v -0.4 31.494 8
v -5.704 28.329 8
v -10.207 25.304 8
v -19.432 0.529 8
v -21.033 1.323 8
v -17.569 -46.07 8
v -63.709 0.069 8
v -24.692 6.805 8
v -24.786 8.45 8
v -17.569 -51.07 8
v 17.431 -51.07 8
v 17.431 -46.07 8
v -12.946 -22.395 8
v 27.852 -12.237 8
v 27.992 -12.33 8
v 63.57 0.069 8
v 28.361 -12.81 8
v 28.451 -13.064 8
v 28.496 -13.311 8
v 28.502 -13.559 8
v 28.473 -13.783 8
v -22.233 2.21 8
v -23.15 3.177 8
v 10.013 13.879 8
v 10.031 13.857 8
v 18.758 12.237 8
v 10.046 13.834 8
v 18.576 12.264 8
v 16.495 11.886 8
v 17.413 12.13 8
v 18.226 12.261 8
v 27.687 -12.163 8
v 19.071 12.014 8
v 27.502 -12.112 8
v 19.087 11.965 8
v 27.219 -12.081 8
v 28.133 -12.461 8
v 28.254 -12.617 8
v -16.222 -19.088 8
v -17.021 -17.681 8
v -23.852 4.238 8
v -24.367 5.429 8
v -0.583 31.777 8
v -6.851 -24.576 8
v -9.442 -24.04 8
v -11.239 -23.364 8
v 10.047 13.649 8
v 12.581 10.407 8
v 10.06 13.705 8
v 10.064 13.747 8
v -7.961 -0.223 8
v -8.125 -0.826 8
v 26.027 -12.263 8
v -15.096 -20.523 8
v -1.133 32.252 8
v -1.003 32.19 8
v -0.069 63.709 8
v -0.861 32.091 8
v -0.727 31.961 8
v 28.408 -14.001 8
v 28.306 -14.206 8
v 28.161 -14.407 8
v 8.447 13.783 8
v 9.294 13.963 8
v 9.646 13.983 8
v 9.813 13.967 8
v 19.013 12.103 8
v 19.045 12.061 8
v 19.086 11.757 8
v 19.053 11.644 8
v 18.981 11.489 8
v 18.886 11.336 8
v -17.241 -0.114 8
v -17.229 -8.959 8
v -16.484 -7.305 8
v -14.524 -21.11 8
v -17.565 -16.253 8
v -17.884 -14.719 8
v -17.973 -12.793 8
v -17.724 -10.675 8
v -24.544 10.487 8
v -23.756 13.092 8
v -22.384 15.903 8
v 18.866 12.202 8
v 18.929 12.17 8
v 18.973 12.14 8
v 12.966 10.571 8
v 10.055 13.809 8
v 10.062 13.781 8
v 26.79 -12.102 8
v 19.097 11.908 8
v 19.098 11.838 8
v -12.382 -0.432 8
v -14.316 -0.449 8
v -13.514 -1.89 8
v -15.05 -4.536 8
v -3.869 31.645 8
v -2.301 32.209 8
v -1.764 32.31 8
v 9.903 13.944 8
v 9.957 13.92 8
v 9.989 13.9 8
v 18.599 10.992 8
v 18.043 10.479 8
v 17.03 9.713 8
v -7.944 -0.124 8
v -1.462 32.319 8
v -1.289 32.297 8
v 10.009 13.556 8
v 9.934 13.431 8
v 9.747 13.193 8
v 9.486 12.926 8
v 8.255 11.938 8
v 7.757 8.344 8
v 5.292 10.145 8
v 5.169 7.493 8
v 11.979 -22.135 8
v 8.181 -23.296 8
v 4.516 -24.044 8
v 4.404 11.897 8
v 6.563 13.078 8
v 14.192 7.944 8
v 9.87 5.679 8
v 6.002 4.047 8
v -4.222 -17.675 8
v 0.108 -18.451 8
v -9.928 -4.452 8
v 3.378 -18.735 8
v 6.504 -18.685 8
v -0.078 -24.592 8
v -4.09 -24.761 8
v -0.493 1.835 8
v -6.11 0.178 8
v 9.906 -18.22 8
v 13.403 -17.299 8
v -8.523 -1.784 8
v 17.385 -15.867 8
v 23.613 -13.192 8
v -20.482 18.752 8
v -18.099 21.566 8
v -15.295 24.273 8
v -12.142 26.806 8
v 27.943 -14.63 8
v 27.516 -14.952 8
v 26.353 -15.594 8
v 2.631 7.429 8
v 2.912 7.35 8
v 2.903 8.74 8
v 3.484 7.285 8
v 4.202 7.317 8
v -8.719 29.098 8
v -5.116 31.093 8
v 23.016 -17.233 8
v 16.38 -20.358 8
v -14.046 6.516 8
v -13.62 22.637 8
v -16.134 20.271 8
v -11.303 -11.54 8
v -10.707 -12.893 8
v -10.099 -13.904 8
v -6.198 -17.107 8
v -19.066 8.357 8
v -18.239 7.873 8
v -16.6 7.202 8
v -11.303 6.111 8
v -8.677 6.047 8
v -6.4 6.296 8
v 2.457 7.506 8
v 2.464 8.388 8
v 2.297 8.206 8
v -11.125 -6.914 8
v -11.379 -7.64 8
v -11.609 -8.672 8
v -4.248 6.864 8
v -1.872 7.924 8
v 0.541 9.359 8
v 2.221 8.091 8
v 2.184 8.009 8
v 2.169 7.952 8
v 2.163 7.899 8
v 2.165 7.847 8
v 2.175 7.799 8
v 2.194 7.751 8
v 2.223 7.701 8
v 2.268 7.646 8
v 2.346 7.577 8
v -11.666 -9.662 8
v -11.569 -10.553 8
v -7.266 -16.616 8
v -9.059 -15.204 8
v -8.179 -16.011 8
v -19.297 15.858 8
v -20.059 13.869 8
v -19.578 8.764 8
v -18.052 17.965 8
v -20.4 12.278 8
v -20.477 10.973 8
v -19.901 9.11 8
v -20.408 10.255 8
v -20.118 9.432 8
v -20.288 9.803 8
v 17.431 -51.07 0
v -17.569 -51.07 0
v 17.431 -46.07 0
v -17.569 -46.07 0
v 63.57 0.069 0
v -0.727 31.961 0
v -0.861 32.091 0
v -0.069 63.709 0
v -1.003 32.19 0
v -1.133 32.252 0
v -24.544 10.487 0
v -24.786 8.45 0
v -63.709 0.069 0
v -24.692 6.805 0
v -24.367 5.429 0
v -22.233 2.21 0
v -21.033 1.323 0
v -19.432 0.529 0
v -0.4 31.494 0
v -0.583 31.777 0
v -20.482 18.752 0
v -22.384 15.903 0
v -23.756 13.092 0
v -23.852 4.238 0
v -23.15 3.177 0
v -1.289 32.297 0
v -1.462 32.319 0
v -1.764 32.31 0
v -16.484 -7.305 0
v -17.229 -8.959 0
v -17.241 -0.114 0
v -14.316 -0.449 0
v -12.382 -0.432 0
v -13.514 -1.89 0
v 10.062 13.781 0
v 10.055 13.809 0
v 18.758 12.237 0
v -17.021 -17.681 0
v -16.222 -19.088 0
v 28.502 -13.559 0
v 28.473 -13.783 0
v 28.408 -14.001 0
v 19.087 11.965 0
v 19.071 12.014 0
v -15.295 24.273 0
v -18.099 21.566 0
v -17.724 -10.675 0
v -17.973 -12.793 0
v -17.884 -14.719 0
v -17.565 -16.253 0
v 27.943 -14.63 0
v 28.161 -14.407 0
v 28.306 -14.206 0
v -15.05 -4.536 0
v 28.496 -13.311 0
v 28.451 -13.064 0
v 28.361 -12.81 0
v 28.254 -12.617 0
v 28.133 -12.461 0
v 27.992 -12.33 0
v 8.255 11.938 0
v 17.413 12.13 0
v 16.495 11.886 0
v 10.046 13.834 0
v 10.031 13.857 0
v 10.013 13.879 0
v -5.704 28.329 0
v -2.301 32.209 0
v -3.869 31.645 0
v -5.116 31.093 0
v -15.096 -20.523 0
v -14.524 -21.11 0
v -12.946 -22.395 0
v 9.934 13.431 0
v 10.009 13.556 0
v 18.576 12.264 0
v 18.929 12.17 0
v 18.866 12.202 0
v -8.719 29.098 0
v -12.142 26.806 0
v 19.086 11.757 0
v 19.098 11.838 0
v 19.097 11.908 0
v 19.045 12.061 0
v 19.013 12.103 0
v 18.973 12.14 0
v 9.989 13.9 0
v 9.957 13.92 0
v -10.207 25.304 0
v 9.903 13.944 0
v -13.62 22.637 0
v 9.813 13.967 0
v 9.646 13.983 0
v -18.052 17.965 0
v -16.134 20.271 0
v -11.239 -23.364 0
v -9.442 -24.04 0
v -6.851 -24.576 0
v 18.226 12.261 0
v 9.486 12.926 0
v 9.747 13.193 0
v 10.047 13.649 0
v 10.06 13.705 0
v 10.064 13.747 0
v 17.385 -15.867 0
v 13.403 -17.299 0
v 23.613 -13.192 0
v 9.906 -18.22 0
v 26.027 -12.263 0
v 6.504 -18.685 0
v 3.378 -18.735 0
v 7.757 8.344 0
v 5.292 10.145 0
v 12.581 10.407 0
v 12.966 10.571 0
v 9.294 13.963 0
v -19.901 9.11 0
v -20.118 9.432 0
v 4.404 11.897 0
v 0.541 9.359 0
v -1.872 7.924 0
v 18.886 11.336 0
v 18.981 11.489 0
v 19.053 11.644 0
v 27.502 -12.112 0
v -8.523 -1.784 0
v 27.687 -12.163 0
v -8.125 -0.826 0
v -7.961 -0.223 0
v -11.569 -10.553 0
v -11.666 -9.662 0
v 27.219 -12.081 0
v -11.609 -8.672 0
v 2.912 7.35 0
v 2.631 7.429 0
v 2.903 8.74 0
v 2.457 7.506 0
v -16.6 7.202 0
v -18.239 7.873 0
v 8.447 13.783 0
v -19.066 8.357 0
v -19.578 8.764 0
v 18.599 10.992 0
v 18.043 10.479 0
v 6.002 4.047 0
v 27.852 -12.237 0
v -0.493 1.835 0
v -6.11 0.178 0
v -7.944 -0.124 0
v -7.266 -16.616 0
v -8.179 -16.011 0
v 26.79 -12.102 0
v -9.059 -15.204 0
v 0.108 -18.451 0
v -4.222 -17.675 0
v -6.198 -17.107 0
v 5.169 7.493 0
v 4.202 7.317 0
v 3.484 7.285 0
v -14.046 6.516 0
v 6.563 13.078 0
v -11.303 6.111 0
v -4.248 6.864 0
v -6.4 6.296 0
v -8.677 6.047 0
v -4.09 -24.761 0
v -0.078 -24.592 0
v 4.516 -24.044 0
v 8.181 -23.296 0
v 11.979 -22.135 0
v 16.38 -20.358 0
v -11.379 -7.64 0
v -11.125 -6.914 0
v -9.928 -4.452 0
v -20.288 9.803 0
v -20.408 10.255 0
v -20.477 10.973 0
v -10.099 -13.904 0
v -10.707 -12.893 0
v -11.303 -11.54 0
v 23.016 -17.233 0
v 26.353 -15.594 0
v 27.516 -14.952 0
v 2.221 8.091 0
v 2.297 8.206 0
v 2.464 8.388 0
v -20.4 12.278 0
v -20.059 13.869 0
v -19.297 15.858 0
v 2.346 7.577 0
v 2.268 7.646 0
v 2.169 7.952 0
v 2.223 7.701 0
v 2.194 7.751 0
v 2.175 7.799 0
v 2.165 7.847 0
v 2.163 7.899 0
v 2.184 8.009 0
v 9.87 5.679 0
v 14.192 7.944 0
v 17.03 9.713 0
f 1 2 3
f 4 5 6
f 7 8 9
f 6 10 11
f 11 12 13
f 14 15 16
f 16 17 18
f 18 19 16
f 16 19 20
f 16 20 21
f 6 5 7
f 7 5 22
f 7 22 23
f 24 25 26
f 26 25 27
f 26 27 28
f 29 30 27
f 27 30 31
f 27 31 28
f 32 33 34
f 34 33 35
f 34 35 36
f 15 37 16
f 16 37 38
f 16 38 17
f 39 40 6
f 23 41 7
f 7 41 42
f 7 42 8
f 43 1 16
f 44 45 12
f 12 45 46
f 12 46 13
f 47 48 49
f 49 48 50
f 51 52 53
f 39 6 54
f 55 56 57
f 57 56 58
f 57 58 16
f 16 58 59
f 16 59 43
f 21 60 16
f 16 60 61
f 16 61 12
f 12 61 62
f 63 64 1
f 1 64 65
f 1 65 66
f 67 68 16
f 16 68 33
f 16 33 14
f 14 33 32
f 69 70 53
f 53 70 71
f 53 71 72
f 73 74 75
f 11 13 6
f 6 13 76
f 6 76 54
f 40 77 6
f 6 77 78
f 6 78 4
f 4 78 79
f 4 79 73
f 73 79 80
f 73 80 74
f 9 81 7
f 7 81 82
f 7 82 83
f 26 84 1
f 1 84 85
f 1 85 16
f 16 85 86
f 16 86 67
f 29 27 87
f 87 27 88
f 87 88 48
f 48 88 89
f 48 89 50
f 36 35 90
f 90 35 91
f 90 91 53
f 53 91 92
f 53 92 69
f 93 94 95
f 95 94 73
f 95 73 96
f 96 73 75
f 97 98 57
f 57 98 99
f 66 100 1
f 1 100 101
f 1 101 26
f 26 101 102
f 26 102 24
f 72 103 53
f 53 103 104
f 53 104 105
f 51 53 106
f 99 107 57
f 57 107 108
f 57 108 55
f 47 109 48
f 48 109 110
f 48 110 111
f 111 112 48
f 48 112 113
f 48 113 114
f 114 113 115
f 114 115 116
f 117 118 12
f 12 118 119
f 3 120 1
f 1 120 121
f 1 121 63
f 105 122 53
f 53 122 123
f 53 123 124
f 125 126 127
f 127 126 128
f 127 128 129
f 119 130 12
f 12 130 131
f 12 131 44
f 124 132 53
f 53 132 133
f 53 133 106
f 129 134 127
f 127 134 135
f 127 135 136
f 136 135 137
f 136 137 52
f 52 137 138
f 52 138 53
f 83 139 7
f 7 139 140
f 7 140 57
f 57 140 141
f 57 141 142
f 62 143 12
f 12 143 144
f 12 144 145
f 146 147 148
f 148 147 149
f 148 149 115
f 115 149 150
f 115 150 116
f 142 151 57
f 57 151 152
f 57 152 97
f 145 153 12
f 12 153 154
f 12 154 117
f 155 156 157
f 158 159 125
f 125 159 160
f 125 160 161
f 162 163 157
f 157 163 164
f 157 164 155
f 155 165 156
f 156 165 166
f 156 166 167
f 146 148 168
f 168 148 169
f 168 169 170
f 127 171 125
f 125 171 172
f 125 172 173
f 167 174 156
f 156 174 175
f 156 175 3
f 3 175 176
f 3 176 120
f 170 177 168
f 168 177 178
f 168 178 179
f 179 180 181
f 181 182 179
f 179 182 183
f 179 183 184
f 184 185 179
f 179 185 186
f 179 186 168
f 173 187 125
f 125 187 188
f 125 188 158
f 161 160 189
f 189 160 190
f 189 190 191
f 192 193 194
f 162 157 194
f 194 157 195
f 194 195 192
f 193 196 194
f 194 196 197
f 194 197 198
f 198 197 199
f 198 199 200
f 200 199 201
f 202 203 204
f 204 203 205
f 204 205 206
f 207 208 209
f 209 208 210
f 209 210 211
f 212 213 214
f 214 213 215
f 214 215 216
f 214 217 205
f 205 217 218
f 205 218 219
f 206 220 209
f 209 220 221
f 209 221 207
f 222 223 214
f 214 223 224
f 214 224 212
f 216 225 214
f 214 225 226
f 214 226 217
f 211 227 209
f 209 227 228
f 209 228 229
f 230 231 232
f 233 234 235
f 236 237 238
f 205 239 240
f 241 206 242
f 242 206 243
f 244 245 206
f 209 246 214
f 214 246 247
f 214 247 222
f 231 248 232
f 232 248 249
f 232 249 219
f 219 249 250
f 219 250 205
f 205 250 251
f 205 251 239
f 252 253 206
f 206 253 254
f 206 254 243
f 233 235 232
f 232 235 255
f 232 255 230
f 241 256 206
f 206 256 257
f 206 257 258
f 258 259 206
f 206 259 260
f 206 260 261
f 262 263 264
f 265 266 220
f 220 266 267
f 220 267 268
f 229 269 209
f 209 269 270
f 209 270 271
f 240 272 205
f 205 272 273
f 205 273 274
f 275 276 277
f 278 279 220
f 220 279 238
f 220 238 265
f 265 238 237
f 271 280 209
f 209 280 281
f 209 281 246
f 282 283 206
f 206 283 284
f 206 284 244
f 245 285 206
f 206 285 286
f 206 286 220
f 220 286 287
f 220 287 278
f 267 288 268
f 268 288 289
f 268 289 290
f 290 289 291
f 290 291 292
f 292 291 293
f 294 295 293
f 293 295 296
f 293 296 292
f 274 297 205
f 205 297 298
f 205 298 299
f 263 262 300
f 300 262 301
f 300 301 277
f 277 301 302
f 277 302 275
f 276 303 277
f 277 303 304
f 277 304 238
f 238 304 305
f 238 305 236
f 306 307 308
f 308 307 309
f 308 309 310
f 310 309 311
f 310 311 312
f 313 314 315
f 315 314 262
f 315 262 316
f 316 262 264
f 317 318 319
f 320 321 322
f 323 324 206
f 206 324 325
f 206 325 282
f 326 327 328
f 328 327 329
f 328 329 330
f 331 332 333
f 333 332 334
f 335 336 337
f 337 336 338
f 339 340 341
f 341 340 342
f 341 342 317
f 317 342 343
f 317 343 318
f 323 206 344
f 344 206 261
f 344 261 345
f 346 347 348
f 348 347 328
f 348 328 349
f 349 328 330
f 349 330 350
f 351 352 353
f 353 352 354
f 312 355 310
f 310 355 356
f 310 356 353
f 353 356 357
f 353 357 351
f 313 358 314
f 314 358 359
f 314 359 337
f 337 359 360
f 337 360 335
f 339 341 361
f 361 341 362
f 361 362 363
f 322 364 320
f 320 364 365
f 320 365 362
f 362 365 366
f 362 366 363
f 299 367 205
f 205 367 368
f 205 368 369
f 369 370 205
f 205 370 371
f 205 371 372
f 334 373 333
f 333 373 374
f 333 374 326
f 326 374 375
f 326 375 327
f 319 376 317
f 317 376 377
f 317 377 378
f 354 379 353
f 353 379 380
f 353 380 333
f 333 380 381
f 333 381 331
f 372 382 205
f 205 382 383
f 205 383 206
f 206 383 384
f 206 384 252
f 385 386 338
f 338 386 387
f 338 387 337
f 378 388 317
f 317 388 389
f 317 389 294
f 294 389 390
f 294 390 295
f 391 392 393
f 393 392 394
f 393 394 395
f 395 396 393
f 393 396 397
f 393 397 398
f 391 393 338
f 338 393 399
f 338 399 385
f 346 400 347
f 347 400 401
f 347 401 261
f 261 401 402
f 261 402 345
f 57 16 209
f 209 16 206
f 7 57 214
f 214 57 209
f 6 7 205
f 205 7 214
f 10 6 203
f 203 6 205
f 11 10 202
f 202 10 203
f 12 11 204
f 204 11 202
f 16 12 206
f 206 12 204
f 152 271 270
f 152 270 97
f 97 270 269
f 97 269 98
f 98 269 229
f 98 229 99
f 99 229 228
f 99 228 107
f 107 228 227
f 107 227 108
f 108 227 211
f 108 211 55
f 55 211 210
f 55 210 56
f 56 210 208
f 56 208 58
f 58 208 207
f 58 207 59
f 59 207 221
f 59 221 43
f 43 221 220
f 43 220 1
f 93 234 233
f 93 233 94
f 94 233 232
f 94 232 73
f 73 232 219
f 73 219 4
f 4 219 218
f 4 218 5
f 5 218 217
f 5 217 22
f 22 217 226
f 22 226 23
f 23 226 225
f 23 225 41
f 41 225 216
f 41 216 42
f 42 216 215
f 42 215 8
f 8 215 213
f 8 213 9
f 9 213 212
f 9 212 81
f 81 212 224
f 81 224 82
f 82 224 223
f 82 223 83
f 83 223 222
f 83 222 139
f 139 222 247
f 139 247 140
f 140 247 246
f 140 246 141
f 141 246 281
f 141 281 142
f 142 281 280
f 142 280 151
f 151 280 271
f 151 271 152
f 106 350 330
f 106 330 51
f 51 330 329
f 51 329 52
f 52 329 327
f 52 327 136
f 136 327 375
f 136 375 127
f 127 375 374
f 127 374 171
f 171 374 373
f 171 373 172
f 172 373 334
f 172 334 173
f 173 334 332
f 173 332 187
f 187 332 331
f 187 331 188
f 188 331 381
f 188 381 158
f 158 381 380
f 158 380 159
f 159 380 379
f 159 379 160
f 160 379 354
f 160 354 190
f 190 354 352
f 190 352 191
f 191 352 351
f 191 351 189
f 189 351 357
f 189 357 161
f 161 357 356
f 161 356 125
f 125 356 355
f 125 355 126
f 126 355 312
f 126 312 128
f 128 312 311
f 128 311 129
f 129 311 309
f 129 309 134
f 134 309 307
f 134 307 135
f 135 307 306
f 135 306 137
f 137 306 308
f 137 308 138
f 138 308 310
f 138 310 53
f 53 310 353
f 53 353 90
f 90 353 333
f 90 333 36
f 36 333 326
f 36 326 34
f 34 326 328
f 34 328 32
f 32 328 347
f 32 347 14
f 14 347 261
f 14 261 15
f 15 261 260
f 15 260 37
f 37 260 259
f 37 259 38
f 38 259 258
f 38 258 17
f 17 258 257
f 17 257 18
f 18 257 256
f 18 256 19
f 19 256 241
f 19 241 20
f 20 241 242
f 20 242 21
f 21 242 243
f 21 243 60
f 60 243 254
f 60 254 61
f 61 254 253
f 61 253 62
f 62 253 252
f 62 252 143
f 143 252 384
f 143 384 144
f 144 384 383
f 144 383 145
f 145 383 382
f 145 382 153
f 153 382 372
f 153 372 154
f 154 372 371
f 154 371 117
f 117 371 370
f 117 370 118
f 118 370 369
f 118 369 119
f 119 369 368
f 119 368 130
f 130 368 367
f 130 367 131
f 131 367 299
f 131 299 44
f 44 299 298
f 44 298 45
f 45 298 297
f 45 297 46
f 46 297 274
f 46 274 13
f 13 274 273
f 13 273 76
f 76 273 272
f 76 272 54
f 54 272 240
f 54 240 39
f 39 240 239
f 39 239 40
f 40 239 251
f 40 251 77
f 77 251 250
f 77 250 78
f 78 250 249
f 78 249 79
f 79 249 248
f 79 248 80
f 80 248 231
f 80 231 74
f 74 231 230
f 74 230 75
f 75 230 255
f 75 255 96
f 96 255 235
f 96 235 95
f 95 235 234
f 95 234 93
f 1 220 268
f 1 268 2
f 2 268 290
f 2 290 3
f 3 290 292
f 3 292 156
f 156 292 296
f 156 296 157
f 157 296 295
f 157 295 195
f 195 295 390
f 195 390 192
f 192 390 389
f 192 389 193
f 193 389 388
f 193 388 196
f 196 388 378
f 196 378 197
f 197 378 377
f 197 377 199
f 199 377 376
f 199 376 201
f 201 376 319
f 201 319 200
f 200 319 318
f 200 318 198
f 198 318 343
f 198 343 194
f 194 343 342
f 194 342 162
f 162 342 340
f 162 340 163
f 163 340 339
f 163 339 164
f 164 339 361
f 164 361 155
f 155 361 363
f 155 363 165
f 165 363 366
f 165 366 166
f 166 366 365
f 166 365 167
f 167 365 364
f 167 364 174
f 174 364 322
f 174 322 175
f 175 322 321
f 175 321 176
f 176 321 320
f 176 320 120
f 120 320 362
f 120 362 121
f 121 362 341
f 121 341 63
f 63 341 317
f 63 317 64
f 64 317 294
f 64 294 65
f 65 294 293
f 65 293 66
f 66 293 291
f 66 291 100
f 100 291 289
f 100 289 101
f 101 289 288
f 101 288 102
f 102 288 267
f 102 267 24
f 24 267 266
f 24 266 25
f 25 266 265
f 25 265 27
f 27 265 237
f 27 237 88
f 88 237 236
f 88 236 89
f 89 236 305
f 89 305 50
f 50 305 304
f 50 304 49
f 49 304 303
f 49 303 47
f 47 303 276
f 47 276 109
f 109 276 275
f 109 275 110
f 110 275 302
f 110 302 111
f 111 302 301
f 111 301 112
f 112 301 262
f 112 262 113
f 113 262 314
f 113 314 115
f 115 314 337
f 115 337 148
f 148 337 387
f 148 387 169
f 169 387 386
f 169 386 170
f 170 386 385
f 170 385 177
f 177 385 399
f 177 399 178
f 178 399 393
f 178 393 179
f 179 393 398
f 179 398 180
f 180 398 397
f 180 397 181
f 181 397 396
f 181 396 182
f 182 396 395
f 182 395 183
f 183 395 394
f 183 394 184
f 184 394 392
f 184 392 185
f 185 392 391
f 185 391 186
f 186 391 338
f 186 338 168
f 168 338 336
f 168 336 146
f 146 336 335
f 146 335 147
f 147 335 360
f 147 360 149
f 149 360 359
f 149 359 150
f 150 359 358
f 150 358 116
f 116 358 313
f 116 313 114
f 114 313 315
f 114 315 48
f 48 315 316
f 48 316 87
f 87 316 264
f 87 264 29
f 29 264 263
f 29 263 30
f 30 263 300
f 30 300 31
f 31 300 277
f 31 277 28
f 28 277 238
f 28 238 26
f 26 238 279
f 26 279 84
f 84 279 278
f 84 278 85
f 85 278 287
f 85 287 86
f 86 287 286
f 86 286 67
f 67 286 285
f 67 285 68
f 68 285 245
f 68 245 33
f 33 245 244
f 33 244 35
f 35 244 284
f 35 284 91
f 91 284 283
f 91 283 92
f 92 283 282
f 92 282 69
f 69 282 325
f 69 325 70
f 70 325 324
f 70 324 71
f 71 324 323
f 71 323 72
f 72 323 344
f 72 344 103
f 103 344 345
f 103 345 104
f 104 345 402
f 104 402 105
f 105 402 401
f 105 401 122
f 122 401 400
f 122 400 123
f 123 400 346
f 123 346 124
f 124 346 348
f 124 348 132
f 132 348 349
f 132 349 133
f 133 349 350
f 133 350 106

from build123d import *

# Parameters (mm, degrees)
BOSS_EXTRU_1_DEPTH = 8


with BuildPart() as part:
    # Esquisse1 → Boss.-Extru.1 (new body)
    with BuildSketch(Plane.XY):
        Polygon((-63.708944389, 0.069334083), (-0.069334083, 63.708944389), (63.570276224, 0.069334083), (17.430665917, -46.070276224), (17.430665917, -51.070276224), (-17.569334083, -51.070276224), (-17.569334083, -46.070276224), align=None)
        with BuildLine():
            add(Edge.make_bspline(
                [(-5.115506028, 31.092505827), (-74.694459112, -3.606886106), (-12.382495372, -0.431708683)],
                knots=[1.410712411, 1.410712411, 1.410712411, 3.915416826, 3.915416826, 3.915416826], degree=2, weights=[1, 0.313089284, 1]))
            add(Edge.make_bspline(
                [(-12.382495372, -0.431708683), (-13.798602233, -1.970552148), (-15.786840747, -6.093599789), (-17.940553431, -9.873120011), (-18.348737285, -16.874055848), (-13.35081833, -22.995859006), (-6.551642351, -25.057550692), (1.88103916, -24.54591103), (11.779109088, -22.952544083), (25.00486663, -16.185562888), (28.93948729, -14.389823467), (27.993312927, -11.156439401), (21.757162276, -14.090338296), (11.130064297, -18.590558204), (2.767957215, -18.957941955), (-3.459000654, -17.906487015), (-8.243969802, -16.724430253), (-11.601072215, -11.981967102), (-12.081798673, -7.193307921), (-8.193031016, -1.811604891), (-7.944443591, -0.123954778)],
                knots=[0, 0, 0, 0, 0.055002772, 0.100403302, 0.155063967, 0.213544692, 0.269816807, 0.331098512, 0.40122397, 0.4846289, 0.525512756, 0.554104146, 0.605282305, 0.680677294, 0.743040173, 0.796469745, 0.843344101, 0.892769378, 0.939894922, 1, 1, 1, 1], degree=3))
            add(Edge.make_bspline(
                [(-7.944443591, -0.123954778), (-7.355485291, -0.044657406), (-6.159288188, 0.003625087), (4.433180118, 3.371139171), (10.650732833, 5.809626431), (19.065659667, 10.677830295), (19.240467565, 12.799023311), (13.141600505, 10.975704887), (4.674891636, 6.56121877), (0.720157357, 8.026670784), (7.346889981, 10.915463592), (11.580403861, 14.638267723), (4.786512631, 13.05436648), (-3.974094832, 4.910405782), (-15.540112794, 6.450316743), (-19.941103743, 8.608999059), (-20.803937019, 11.068864087), (-19.172564933, 19.297278514), (-9.05358027, 26.570971255), (-0.399660554, 31.494069393)],
                knots=[0, 0, 0, 0, 0.031255995, 0.106776575, 0.174945069, 0.245285901, 0.267297915, 0.321808442, 0.398015463, 0.429947782, 0.48817775, 0.533801632, 0.581225243, 0.664297247, 0.742642388, 0.792032505, 0.826166158, 0.887072183, 1, 1, 1, 1], degree=3))
            add(Edge.make_bspline(
                [(-5.115506028, 31.092505827), (-3.588520618, 31.784073976), (-1.239792884, 32.841087965), (-0.618855633, 31.848447969), (-0.399660554, 31.494069393)],
                knots=[0, 0, 0, 0, 0.648929767, 1, 1, 1, 1], degree=3))
        make_face(mode=Mode.SUBTRACT)
    extrude(amount=BOSS_EXTRU_1_DEPTH)


solid = part.part
